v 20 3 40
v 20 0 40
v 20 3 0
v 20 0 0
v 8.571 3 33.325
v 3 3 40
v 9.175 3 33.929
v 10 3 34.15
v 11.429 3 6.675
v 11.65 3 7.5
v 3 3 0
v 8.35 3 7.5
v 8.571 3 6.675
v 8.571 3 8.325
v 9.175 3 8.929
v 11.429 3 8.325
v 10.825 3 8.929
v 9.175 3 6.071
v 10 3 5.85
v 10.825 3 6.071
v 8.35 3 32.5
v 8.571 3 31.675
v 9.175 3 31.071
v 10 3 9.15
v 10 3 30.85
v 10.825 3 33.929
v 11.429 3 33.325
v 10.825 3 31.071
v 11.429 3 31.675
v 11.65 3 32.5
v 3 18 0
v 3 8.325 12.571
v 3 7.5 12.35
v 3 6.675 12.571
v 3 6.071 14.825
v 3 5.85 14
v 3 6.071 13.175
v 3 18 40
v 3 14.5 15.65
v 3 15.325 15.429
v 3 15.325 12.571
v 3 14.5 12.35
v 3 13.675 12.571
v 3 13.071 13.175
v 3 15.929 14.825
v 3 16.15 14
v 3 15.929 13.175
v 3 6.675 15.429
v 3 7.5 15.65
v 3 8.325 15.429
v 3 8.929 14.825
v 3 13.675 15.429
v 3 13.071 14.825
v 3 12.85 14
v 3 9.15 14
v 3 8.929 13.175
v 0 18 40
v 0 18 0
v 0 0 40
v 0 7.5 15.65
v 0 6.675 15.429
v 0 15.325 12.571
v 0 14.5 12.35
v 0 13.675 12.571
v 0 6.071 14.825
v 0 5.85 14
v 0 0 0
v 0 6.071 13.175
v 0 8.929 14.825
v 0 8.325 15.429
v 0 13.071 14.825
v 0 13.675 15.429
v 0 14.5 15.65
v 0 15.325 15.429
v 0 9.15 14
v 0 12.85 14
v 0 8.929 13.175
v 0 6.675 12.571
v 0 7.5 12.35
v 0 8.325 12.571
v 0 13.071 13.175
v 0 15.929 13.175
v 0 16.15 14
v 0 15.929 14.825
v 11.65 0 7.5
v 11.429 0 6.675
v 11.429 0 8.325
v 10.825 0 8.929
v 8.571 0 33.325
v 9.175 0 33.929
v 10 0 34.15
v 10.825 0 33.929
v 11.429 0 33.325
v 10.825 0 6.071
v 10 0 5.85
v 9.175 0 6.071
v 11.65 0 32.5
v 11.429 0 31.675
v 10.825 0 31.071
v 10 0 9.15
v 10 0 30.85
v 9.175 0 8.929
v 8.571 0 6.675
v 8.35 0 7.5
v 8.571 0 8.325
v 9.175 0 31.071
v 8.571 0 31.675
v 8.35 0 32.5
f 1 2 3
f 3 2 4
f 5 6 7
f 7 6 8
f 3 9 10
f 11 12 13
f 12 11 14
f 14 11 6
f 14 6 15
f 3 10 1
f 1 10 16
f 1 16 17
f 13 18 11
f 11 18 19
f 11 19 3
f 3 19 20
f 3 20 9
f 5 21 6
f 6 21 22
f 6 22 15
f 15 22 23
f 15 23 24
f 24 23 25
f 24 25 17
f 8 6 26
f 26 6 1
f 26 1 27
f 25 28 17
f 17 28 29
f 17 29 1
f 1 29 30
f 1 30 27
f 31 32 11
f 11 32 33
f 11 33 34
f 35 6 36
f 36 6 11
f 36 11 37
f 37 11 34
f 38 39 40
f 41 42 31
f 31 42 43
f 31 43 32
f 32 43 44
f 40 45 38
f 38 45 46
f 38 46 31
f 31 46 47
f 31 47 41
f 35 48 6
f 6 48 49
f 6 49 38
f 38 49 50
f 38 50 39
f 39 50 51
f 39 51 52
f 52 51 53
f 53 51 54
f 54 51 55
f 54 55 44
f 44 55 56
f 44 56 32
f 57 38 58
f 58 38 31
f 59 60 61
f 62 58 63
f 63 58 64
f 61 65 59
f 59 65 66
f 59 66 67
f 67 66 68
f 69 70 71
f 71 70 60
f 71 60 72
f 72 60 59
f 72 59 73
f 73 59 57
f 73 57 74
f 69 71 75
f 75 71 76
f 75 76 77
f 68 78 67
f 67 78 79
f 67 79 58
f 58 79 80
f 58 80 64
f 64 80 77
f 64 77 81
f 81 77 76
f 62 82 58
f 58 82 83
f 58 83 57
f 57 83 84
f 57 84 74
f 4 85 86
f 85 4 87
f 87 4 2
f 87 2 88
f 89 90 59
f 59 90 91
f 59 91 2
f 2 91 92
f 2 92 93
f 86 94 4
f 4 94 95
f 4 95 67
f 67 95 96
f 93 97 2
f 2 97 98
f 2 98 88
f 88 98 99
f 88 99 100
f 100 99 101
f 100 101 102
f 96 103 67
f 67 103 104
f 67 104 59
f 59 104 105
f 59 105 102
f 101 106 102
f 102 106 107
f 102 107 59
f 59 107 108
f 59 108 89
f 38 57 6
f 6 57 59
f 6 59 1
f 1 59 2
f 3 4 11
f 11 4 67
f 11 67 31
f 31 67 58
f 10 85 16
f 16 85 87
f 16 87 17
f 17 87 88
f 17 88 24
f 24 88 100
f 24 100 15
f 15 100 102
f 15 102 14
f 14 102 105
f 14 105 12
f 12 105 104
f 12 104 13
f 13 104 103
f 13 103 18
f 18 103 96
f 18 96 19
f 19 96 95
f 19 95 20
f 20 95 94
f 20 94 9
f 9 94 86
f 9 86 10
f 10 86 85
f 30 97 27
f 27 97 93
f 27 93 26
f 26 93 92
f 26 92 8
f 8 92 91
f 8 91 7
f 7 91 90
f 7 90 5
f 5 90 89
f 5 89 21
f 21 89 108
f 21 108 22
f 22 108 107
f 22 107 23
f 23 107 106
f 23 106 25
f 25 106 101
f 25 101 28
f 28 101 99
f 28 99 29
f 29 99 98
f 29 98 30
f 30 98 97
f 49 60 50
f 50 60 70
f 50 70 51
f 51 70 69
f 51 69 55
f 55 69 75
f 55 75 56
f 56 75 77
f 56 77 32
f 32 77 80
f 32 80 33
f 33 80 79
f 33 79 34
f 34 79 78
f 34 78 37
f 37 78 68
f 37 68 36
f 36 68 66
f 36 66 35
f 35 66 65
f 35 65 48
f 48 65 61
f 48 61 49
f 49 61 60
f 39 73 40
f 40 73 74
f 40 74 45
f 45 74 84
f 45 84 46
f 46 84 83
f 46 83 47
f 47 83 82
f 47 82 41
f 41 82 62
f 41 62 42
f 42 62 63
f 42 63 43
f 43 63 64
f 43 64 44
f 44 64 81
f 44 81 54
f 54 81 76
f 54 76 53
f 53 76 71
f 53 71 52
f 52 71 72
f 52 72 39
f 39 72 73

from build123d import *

# Parameters (mm, degrees)
RESSALTO_EXTRUS_O1_DEPTH = 40
ESBO_O2_R                = 1.65
CORTE_EXTRUS_O1_DEPTH    = 40
ESBO_O3_R                = 1.65
CORTE_EXTRUS_O2_DEPTH    = 40


with BuildPart() as part:
    # Esboço1 → Ressalto-extrusão1 (new body)
    with BuildSketch(Plane.XY):
        Polygon((20, 0), (0, 0), (0, 18), (3, 18), (3, 3), (20, 3), align=None)
    extrude(amount=RESSALTO_EXTRUS_O1_DEPTH)

    # Esboço2 → Corte-extrusão1 (cut)
    with BuildSketch(Plane.XZ):
        with Locations((10, 7.5)):
            Circle(ESBO_O2_R)
        with Locations((10, 32.5)):
            Circle(ESBO_O2_R)
    extrude(amount=-CORTE_EXTRUS_O1_DEPTH, mode=Mode.SUBTRACT)

    # Esboço3 → Corte-extrusão2 (cut)
    with BuildSketch(Plane.ZY):
        with Locations((14, 7.5)):
            Circle(ESBO_O3_R)
        with Locations((14, 14.5)):
            Circle(ESBO_O3_R)
    extrude(amount=-CORTE_EXTRUS_O2_DEPTH, mode=Mode.SUBTRACT)


solid = part.part
